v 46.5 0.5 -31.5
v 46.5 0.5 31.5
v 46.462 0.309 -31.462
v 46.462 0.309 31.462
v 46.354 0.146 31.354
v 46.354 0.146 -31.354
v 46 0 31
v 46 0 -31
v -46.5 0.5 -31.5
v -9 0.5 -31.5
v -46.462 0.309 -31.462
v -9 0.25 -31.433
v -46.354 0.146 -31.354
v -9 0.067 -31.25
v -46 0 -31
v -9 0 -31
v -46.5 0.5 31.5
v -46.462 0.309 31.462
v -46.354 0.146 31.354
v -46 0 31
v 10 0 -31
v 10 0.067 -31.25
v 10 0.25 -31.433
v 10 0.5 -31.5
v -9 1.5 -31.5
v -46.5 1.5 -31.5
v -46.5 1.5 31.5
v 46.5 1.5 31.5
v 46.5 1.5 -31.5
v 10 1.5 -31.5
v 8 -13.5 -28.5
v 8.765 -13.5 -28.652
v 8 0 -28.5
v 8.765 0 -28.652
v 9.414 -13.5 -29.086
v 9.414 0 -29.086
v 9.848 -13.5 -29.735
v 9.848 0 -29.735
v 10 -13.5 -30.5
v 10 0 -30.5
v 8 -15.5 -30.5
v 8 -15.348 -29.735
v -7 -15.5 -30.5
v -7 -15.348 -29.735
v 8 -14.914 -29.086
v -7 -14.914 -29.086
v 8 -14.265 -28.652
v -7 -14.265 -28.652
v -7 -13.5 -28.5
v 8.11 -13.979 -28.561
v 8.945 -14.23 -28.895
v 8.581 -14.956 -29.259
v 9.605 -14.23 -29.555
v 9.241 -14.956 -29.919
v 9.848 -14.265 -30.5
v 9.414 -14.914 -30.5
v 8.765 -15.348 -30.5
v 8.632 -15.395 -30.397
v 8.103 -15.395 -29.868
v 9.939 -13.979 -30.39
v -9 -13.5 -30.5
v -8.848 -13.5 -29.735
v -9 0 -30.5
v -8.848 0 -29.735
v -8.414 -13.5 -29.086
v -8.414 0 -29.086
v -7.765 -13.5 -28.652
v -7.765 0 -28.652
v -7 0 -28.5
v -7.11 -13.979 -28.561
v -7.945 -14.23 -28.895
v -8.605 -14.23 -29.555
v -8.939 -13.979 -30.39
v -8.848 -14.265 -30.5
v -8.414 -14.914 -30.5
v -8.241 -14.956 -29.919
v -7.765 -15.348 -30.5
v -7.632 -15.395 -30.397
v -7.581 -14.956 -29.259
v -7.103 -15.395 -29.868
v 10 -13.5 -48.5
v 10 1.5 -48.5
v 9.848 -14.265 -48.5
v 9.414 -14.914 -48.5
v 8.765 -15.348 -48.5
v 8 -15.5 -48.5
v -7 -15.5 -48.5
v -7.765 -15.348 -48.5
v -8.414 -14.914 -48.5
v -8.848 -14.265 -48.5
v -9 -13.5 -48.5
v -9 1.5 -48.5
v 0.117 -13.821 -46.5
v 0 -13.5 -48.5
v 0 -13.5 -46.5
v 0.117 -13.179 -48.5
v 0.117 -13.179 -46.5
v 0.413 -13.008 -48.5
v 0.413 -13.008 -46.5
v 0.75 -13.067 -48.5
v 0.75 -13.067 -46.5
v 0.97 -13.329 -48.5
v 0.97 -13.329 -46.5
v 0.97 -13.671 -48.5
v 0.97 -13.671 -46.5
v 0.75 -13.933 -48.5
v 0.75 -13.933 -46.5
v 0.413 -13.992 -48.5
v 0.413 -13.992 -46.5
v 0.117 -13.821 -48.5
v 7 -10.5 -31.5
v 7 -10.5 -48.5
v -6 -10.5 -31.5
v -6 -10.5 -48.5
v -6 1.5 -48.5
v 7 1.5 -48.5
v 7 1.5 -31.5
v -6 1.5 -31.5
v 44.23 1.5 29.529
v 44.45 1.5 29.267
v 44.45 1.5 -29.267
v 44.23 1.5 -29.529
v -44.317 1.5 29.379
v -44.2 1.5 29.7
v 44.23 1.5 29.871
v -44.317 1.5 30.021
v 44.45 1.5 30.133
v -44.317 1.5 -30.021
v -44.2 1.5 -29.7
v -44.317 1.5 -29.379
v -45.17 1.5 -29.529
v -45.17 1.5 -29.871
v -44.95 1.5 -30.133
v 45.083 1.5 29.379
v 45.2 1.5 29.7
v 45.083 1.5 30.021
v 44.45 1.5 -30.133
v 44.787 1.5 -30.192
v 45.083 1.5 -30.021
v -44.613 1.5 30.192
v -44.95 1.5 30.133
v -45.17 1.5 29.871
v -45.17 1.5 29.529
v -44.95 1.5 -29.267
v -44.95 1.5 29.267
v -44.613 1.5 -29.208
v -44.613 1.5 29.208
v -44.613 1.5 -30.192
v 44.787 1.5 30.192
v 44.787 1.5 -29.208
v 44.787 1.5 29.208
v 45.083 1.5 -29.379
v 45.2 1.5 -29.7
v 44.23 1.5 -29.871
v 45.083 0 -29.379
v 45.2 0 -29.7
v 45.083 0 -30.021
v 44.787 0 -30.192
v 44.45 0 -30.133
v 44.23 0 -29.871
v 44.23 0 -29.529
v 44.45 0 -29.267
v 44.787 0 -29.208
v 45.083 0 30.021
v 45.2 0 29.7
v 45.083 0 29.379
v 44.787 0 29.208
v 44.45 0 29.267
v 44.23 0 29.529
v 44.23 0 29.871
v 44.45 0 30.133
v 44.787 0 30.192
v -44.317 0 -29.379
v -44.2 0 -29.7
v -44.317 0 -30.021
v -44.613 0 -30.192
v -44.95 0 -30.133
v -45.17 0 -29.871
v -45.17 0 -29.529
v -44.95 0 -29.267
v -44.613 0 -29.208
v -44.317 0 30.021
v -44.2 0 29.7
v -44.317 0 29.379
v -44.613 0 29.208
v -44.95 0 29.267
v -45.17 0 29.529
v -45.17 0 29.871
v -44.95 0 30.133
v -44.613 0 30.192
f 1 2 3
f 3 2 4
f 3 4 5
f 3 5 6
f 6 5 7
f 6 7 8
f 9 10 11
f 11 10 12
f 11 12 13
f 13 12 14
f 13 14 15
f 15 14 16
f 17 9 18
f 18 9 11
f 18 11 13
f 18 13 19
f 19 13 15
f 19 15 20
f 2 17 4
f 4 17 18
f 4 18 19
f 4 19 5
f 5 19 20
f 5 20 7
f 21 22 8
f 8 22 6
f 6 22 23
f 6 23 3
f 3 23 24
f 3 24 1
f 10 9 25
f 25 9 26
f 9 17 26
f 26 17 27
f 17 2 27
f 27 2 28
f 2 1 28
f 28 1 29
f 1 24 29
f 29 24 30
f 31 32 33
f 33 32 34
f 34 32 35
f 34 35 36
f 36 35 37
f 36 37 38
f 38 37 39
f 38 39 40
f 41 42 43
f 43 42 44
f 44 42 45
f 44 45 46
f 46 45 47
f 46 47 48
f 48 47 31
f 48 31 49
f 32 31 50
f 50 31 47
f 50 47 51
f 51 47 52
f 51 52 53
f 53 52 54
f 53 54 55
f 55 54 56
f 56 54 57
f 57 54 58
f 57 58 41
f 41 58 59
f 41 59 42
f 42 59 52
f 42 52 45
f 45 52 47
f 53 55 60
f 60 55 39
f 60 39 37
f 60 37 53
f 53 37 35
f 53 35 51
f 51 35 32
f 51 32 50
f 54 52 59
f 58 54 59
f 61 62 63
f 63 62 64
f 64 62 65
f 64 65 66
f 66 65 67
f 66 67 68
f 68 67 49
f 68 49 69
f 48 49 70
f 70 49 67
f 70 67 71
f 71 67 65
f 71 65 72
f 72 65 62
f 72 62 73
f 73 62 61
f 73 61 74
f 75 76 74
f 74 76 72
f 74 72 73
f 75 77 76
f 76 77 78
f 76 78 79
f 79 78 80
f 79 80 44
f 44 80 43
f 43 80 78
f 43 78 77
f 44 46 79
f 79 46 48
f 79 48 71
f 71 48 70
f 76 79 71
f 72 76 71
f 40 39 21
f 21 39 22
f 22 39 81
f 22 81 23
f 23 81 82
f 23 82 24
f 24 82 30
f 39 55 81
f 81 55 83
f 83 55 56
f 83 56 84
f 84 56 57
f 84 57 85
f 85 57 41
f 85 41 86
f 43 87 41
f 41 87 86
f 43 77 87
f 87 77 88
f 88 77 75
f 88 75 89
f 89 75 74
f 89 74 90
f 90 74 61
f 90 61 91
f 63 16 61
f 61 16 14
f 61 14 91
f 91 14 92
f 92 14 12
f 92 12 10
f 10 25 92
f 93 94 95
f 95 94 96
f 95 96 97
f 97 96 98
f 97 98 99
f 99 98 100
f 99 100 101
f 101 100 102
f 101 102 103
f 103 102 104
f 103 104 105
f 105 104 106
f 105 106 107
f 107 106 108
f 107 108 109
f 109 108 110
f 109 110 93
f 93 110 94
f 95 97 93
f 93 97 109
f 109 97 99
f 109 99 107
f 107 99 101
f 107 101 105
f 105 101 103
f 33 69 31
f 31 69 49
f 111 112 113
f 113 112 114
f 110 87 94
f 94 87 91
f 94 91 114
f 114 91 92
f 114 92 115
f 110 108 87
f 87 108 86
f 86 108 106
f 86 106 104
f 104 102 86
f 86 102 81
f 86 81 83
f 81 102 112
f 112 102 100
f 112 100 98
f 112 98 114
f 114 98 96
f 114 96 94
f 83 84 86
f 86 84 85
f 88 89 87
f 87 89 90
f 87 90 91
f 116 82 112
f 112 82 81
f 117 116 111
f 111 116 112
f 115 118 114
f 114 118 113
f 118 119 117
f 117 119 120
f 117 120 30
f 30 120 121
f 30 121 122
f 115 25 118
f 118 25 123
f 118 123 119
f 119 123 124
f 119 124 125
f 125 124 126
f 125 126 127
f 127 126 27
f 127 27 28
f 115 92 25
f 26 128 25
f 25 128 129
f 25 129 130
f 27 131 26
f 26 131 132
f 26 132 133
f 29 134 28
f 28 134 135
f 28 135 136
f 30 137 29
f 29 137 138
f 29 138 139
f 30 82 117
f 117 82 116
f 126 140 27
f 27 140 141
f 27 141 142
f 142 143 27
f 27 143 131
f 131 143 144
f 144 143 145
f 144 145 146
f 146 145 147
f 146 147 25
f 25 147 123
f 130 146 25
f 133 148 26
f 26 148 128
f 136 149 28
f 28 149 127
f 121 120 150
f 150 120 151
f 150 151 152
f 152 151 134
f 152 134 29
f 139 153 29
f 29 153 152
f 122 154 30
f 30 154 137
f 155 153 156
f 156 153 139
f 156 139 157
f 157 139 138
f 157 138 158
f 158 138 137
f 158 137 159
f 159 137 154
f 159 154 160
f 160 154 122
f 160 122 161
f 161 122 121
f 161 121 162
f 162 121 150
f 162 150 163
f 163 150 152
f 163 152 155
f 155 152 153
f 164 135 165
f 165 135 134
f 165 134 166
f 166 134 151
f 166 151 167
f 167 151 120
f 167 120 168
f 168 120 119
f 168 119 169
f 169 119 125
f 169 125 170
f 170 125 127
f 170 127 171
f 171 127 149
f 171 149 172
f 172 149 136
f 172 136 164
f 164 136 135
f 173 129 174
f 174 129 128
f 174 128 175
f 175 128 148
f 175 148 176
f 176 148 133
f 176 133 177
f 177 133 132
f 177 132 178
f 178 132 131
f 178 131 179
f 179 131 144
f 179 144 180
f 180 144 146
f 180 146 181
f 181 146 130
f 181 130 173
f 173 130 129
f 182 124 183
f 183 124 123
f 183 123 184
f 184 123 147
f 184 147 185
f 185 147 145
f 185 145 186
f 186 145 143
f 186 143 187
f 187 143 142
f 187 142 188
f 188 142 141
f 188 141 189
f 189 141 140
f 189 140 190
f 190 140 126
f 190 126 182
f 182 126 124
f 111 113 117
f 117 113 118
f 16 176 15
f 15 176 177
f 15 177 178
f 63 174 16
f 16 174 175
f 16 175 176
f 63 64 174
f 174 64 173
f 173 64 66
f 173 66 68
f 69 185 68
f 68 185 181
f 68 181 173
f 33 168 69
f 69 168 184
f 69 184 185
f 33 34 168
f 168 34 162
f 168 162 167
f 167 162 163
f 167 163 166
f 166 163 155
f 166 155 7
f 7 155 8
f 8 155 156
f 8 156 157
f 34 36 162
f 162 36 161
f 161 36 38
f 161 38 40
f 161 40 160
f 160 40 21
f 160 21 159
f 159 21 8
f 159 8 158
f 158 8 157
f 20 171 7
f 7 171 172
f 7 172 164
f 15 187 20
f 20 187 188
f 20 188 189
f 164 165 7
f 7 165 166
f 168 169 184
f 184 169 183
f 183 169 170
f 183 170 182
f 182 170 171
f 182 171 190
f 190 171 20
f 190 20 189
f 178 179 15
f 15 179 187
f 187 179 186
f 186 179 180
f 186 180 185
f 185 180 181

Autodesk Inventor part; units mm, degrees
ref_plane "YZ Plane" through (0, 0, 0) normal (1, 0, 0) x (0, 1, 0)
ref_plane "XZ Plane" through (0, 0, 0) normal (0, 1, 0) x (-1, 0, 0)
ref_plane "XY Plane" through (0, 0, 0) normal (0, 0, 1) x (1, 0, 0)
sketch "Sketch1" plane through (0, 0, 0) normal (0, 1, 0) x (-1, 0, 0)
  line L0 (46.5, 31.5) -> (-46.5, 31.5)
  line L1 (-46.5, 31.5) -> (-46.5, -31.5)
  line L2 (-46.5, -31.5) -> (46.5, -31.5)
  line L3 (46.5, -31.5) -> (46.5, 31.5)
  line L4 (46.5, 31.5) -> (-46.5, -31.5) construction
  line L5 (-46.5, 31.5) -> (46.5, -31.5) construction
  point P0 (0, 0)
  dimension "d0" = 63
  dimension "d1" = 93
extrude "Extrusion1" add sketch "Sketch1" along normal blind 1.5
sketch "Sketch2" plane through (0, 1.5, 0) normal (0, 1, 0) x (1, 0, 0)
  circle A0 centre (-44.7, -29.7) radius 0.5
  line L0 (-46.5, 31.5) -> (-46.5, -31.5) projected
  line L1 (-46.5, -31.5) -> (46.5, -31.5) projected
  circle A1 centre (-44.7, 29.7) radius 0.5
  line L2 (46.5, 31.5) -> (-46.5, 31.5) projected
  circle A2 centre (44.7, -29.7) radius 0.5
  line L3 (46.5, -31.5) -> (46.5, 31.5) projected
  circle A3 centre (44.7, 29.7) radius 0.5
  point P0 (0, 0)
  dimension "d4" = 1.8
  dimension "d5" = 1.8
  dimension "d6" = 1
  dimension "d7" = 1.8
  dimension "d8" = 1.8
  dimension "d9" = 1
  dimension "d10" = 1.8
  dimension "d11" = 1.8
  dimension "d12" = 1
  dimension "d13" = 1
  dimension "d14" = 1.8
  dimension "d15" = 1.8
extrude "Extrusion2" cut sketch "Sketch2" against normal blind 1.5 contours A0 | A1 | A2 | A3
sketch "Sketch3" plane through (0, 1.5, 0) normal (0, 1, 0) x (1, 0, 0)
  line L0 (46.5, 31.5) -> (-46.5, 31.5) projected
  line L1 (-6, 31.5) -> (7, 31.5)
  line L2 (10, 31.5) -> (10, 28.5)
  line L3 (10, 28.5) -> (-9, 28.5)
  line L4 (-9, 28.5) -> (-9, 31.5)
  line L5 (-46.5, 31.5) -> (-46.5, -31.5) projected
  line L6 (-6, 31.5) -> (-6, 48.5)
  line L7 (-6, 48.5) -> (-9, 48.5)
  line L8 (-9, 48.5) -> (-9, 31.5)
  line L9 (7, 31.5) -> (7, 48.5)
  line L10 (7, 48.5) -> (10, 48.5)
  line L11 (10, 48.5) -> (10, 31.5)
  point P0 (0, 0)
  point P1 (7, 31.5)
  dimension "d18" = 19
  dimension "d20" = 37.5
  dimension "d22" = 3
  dimension "d24" = 3
  dimension "d25" = 20
  dimension "d26" = 20
  dimension "d27" = 3
  dimension "d28" = 17
  dimension "d29" = 3
extrude "Extrusion3" add sketch "Sketch3" against normal blind 12
sketch "Sketch4" plane through (0, -10.5, 0) normal (0, -1, 0) x (1, 0, 0)
  line L0 (-9, -28.5) -> (-9, -48.5) projected
  line L1 (-9, -28.5) -> (10, -28.5)
  line L2 (10, -28.5) -> (10, -48.5)
  line L3 (10, -48.5) -> (-9, -48.5)
  line L4 (-9, -48.5) -> (-9, -28.5)
  point P0 (0, 0)
extrude "Extrusion4" add sketch "Sketch4" along normal blind 5
fillet "Fillet1" radius 2 2 edges at (-9, -15.5, -38.5) (10, -15.5, -38.5)
sketch "Sketch5" plane through (-6, 1.5, -48.5) normal (0, 0, -1) x (-1, 0, 0)
  circle A0 centre (-6.5, -15) radius 0.5
  line L0 (3, 0) -> (3, -15) projected
  line L1 (1, -17) -> (-14, -17) projected
  point P0 (-6, -1.5)
  dimension "d35" = 9.5
  dimension "d36" = 2
  dimension "d37" = 1
extrude "Extrusion5" cut sketch "Sketch5" against normal blind 2
fillet "Fillet2" radius 2 5 edges at (-8.4142, -14.9142, -28.5) (-9, -6.75, -28.5) (9.4142, -14.9142, -28.5) (10, -6.75, -28.5) (0.5, -15.5, -28.5)
fillet "Fillet3" radius 0.5 5 edges at (-27.75, 0, -31.5) (-46.5, 0, 0) (0, 0, 31.5) (28.25, 0, -31.5) (46.5, 0, 0)
properties part number "remoteswitchlid"
